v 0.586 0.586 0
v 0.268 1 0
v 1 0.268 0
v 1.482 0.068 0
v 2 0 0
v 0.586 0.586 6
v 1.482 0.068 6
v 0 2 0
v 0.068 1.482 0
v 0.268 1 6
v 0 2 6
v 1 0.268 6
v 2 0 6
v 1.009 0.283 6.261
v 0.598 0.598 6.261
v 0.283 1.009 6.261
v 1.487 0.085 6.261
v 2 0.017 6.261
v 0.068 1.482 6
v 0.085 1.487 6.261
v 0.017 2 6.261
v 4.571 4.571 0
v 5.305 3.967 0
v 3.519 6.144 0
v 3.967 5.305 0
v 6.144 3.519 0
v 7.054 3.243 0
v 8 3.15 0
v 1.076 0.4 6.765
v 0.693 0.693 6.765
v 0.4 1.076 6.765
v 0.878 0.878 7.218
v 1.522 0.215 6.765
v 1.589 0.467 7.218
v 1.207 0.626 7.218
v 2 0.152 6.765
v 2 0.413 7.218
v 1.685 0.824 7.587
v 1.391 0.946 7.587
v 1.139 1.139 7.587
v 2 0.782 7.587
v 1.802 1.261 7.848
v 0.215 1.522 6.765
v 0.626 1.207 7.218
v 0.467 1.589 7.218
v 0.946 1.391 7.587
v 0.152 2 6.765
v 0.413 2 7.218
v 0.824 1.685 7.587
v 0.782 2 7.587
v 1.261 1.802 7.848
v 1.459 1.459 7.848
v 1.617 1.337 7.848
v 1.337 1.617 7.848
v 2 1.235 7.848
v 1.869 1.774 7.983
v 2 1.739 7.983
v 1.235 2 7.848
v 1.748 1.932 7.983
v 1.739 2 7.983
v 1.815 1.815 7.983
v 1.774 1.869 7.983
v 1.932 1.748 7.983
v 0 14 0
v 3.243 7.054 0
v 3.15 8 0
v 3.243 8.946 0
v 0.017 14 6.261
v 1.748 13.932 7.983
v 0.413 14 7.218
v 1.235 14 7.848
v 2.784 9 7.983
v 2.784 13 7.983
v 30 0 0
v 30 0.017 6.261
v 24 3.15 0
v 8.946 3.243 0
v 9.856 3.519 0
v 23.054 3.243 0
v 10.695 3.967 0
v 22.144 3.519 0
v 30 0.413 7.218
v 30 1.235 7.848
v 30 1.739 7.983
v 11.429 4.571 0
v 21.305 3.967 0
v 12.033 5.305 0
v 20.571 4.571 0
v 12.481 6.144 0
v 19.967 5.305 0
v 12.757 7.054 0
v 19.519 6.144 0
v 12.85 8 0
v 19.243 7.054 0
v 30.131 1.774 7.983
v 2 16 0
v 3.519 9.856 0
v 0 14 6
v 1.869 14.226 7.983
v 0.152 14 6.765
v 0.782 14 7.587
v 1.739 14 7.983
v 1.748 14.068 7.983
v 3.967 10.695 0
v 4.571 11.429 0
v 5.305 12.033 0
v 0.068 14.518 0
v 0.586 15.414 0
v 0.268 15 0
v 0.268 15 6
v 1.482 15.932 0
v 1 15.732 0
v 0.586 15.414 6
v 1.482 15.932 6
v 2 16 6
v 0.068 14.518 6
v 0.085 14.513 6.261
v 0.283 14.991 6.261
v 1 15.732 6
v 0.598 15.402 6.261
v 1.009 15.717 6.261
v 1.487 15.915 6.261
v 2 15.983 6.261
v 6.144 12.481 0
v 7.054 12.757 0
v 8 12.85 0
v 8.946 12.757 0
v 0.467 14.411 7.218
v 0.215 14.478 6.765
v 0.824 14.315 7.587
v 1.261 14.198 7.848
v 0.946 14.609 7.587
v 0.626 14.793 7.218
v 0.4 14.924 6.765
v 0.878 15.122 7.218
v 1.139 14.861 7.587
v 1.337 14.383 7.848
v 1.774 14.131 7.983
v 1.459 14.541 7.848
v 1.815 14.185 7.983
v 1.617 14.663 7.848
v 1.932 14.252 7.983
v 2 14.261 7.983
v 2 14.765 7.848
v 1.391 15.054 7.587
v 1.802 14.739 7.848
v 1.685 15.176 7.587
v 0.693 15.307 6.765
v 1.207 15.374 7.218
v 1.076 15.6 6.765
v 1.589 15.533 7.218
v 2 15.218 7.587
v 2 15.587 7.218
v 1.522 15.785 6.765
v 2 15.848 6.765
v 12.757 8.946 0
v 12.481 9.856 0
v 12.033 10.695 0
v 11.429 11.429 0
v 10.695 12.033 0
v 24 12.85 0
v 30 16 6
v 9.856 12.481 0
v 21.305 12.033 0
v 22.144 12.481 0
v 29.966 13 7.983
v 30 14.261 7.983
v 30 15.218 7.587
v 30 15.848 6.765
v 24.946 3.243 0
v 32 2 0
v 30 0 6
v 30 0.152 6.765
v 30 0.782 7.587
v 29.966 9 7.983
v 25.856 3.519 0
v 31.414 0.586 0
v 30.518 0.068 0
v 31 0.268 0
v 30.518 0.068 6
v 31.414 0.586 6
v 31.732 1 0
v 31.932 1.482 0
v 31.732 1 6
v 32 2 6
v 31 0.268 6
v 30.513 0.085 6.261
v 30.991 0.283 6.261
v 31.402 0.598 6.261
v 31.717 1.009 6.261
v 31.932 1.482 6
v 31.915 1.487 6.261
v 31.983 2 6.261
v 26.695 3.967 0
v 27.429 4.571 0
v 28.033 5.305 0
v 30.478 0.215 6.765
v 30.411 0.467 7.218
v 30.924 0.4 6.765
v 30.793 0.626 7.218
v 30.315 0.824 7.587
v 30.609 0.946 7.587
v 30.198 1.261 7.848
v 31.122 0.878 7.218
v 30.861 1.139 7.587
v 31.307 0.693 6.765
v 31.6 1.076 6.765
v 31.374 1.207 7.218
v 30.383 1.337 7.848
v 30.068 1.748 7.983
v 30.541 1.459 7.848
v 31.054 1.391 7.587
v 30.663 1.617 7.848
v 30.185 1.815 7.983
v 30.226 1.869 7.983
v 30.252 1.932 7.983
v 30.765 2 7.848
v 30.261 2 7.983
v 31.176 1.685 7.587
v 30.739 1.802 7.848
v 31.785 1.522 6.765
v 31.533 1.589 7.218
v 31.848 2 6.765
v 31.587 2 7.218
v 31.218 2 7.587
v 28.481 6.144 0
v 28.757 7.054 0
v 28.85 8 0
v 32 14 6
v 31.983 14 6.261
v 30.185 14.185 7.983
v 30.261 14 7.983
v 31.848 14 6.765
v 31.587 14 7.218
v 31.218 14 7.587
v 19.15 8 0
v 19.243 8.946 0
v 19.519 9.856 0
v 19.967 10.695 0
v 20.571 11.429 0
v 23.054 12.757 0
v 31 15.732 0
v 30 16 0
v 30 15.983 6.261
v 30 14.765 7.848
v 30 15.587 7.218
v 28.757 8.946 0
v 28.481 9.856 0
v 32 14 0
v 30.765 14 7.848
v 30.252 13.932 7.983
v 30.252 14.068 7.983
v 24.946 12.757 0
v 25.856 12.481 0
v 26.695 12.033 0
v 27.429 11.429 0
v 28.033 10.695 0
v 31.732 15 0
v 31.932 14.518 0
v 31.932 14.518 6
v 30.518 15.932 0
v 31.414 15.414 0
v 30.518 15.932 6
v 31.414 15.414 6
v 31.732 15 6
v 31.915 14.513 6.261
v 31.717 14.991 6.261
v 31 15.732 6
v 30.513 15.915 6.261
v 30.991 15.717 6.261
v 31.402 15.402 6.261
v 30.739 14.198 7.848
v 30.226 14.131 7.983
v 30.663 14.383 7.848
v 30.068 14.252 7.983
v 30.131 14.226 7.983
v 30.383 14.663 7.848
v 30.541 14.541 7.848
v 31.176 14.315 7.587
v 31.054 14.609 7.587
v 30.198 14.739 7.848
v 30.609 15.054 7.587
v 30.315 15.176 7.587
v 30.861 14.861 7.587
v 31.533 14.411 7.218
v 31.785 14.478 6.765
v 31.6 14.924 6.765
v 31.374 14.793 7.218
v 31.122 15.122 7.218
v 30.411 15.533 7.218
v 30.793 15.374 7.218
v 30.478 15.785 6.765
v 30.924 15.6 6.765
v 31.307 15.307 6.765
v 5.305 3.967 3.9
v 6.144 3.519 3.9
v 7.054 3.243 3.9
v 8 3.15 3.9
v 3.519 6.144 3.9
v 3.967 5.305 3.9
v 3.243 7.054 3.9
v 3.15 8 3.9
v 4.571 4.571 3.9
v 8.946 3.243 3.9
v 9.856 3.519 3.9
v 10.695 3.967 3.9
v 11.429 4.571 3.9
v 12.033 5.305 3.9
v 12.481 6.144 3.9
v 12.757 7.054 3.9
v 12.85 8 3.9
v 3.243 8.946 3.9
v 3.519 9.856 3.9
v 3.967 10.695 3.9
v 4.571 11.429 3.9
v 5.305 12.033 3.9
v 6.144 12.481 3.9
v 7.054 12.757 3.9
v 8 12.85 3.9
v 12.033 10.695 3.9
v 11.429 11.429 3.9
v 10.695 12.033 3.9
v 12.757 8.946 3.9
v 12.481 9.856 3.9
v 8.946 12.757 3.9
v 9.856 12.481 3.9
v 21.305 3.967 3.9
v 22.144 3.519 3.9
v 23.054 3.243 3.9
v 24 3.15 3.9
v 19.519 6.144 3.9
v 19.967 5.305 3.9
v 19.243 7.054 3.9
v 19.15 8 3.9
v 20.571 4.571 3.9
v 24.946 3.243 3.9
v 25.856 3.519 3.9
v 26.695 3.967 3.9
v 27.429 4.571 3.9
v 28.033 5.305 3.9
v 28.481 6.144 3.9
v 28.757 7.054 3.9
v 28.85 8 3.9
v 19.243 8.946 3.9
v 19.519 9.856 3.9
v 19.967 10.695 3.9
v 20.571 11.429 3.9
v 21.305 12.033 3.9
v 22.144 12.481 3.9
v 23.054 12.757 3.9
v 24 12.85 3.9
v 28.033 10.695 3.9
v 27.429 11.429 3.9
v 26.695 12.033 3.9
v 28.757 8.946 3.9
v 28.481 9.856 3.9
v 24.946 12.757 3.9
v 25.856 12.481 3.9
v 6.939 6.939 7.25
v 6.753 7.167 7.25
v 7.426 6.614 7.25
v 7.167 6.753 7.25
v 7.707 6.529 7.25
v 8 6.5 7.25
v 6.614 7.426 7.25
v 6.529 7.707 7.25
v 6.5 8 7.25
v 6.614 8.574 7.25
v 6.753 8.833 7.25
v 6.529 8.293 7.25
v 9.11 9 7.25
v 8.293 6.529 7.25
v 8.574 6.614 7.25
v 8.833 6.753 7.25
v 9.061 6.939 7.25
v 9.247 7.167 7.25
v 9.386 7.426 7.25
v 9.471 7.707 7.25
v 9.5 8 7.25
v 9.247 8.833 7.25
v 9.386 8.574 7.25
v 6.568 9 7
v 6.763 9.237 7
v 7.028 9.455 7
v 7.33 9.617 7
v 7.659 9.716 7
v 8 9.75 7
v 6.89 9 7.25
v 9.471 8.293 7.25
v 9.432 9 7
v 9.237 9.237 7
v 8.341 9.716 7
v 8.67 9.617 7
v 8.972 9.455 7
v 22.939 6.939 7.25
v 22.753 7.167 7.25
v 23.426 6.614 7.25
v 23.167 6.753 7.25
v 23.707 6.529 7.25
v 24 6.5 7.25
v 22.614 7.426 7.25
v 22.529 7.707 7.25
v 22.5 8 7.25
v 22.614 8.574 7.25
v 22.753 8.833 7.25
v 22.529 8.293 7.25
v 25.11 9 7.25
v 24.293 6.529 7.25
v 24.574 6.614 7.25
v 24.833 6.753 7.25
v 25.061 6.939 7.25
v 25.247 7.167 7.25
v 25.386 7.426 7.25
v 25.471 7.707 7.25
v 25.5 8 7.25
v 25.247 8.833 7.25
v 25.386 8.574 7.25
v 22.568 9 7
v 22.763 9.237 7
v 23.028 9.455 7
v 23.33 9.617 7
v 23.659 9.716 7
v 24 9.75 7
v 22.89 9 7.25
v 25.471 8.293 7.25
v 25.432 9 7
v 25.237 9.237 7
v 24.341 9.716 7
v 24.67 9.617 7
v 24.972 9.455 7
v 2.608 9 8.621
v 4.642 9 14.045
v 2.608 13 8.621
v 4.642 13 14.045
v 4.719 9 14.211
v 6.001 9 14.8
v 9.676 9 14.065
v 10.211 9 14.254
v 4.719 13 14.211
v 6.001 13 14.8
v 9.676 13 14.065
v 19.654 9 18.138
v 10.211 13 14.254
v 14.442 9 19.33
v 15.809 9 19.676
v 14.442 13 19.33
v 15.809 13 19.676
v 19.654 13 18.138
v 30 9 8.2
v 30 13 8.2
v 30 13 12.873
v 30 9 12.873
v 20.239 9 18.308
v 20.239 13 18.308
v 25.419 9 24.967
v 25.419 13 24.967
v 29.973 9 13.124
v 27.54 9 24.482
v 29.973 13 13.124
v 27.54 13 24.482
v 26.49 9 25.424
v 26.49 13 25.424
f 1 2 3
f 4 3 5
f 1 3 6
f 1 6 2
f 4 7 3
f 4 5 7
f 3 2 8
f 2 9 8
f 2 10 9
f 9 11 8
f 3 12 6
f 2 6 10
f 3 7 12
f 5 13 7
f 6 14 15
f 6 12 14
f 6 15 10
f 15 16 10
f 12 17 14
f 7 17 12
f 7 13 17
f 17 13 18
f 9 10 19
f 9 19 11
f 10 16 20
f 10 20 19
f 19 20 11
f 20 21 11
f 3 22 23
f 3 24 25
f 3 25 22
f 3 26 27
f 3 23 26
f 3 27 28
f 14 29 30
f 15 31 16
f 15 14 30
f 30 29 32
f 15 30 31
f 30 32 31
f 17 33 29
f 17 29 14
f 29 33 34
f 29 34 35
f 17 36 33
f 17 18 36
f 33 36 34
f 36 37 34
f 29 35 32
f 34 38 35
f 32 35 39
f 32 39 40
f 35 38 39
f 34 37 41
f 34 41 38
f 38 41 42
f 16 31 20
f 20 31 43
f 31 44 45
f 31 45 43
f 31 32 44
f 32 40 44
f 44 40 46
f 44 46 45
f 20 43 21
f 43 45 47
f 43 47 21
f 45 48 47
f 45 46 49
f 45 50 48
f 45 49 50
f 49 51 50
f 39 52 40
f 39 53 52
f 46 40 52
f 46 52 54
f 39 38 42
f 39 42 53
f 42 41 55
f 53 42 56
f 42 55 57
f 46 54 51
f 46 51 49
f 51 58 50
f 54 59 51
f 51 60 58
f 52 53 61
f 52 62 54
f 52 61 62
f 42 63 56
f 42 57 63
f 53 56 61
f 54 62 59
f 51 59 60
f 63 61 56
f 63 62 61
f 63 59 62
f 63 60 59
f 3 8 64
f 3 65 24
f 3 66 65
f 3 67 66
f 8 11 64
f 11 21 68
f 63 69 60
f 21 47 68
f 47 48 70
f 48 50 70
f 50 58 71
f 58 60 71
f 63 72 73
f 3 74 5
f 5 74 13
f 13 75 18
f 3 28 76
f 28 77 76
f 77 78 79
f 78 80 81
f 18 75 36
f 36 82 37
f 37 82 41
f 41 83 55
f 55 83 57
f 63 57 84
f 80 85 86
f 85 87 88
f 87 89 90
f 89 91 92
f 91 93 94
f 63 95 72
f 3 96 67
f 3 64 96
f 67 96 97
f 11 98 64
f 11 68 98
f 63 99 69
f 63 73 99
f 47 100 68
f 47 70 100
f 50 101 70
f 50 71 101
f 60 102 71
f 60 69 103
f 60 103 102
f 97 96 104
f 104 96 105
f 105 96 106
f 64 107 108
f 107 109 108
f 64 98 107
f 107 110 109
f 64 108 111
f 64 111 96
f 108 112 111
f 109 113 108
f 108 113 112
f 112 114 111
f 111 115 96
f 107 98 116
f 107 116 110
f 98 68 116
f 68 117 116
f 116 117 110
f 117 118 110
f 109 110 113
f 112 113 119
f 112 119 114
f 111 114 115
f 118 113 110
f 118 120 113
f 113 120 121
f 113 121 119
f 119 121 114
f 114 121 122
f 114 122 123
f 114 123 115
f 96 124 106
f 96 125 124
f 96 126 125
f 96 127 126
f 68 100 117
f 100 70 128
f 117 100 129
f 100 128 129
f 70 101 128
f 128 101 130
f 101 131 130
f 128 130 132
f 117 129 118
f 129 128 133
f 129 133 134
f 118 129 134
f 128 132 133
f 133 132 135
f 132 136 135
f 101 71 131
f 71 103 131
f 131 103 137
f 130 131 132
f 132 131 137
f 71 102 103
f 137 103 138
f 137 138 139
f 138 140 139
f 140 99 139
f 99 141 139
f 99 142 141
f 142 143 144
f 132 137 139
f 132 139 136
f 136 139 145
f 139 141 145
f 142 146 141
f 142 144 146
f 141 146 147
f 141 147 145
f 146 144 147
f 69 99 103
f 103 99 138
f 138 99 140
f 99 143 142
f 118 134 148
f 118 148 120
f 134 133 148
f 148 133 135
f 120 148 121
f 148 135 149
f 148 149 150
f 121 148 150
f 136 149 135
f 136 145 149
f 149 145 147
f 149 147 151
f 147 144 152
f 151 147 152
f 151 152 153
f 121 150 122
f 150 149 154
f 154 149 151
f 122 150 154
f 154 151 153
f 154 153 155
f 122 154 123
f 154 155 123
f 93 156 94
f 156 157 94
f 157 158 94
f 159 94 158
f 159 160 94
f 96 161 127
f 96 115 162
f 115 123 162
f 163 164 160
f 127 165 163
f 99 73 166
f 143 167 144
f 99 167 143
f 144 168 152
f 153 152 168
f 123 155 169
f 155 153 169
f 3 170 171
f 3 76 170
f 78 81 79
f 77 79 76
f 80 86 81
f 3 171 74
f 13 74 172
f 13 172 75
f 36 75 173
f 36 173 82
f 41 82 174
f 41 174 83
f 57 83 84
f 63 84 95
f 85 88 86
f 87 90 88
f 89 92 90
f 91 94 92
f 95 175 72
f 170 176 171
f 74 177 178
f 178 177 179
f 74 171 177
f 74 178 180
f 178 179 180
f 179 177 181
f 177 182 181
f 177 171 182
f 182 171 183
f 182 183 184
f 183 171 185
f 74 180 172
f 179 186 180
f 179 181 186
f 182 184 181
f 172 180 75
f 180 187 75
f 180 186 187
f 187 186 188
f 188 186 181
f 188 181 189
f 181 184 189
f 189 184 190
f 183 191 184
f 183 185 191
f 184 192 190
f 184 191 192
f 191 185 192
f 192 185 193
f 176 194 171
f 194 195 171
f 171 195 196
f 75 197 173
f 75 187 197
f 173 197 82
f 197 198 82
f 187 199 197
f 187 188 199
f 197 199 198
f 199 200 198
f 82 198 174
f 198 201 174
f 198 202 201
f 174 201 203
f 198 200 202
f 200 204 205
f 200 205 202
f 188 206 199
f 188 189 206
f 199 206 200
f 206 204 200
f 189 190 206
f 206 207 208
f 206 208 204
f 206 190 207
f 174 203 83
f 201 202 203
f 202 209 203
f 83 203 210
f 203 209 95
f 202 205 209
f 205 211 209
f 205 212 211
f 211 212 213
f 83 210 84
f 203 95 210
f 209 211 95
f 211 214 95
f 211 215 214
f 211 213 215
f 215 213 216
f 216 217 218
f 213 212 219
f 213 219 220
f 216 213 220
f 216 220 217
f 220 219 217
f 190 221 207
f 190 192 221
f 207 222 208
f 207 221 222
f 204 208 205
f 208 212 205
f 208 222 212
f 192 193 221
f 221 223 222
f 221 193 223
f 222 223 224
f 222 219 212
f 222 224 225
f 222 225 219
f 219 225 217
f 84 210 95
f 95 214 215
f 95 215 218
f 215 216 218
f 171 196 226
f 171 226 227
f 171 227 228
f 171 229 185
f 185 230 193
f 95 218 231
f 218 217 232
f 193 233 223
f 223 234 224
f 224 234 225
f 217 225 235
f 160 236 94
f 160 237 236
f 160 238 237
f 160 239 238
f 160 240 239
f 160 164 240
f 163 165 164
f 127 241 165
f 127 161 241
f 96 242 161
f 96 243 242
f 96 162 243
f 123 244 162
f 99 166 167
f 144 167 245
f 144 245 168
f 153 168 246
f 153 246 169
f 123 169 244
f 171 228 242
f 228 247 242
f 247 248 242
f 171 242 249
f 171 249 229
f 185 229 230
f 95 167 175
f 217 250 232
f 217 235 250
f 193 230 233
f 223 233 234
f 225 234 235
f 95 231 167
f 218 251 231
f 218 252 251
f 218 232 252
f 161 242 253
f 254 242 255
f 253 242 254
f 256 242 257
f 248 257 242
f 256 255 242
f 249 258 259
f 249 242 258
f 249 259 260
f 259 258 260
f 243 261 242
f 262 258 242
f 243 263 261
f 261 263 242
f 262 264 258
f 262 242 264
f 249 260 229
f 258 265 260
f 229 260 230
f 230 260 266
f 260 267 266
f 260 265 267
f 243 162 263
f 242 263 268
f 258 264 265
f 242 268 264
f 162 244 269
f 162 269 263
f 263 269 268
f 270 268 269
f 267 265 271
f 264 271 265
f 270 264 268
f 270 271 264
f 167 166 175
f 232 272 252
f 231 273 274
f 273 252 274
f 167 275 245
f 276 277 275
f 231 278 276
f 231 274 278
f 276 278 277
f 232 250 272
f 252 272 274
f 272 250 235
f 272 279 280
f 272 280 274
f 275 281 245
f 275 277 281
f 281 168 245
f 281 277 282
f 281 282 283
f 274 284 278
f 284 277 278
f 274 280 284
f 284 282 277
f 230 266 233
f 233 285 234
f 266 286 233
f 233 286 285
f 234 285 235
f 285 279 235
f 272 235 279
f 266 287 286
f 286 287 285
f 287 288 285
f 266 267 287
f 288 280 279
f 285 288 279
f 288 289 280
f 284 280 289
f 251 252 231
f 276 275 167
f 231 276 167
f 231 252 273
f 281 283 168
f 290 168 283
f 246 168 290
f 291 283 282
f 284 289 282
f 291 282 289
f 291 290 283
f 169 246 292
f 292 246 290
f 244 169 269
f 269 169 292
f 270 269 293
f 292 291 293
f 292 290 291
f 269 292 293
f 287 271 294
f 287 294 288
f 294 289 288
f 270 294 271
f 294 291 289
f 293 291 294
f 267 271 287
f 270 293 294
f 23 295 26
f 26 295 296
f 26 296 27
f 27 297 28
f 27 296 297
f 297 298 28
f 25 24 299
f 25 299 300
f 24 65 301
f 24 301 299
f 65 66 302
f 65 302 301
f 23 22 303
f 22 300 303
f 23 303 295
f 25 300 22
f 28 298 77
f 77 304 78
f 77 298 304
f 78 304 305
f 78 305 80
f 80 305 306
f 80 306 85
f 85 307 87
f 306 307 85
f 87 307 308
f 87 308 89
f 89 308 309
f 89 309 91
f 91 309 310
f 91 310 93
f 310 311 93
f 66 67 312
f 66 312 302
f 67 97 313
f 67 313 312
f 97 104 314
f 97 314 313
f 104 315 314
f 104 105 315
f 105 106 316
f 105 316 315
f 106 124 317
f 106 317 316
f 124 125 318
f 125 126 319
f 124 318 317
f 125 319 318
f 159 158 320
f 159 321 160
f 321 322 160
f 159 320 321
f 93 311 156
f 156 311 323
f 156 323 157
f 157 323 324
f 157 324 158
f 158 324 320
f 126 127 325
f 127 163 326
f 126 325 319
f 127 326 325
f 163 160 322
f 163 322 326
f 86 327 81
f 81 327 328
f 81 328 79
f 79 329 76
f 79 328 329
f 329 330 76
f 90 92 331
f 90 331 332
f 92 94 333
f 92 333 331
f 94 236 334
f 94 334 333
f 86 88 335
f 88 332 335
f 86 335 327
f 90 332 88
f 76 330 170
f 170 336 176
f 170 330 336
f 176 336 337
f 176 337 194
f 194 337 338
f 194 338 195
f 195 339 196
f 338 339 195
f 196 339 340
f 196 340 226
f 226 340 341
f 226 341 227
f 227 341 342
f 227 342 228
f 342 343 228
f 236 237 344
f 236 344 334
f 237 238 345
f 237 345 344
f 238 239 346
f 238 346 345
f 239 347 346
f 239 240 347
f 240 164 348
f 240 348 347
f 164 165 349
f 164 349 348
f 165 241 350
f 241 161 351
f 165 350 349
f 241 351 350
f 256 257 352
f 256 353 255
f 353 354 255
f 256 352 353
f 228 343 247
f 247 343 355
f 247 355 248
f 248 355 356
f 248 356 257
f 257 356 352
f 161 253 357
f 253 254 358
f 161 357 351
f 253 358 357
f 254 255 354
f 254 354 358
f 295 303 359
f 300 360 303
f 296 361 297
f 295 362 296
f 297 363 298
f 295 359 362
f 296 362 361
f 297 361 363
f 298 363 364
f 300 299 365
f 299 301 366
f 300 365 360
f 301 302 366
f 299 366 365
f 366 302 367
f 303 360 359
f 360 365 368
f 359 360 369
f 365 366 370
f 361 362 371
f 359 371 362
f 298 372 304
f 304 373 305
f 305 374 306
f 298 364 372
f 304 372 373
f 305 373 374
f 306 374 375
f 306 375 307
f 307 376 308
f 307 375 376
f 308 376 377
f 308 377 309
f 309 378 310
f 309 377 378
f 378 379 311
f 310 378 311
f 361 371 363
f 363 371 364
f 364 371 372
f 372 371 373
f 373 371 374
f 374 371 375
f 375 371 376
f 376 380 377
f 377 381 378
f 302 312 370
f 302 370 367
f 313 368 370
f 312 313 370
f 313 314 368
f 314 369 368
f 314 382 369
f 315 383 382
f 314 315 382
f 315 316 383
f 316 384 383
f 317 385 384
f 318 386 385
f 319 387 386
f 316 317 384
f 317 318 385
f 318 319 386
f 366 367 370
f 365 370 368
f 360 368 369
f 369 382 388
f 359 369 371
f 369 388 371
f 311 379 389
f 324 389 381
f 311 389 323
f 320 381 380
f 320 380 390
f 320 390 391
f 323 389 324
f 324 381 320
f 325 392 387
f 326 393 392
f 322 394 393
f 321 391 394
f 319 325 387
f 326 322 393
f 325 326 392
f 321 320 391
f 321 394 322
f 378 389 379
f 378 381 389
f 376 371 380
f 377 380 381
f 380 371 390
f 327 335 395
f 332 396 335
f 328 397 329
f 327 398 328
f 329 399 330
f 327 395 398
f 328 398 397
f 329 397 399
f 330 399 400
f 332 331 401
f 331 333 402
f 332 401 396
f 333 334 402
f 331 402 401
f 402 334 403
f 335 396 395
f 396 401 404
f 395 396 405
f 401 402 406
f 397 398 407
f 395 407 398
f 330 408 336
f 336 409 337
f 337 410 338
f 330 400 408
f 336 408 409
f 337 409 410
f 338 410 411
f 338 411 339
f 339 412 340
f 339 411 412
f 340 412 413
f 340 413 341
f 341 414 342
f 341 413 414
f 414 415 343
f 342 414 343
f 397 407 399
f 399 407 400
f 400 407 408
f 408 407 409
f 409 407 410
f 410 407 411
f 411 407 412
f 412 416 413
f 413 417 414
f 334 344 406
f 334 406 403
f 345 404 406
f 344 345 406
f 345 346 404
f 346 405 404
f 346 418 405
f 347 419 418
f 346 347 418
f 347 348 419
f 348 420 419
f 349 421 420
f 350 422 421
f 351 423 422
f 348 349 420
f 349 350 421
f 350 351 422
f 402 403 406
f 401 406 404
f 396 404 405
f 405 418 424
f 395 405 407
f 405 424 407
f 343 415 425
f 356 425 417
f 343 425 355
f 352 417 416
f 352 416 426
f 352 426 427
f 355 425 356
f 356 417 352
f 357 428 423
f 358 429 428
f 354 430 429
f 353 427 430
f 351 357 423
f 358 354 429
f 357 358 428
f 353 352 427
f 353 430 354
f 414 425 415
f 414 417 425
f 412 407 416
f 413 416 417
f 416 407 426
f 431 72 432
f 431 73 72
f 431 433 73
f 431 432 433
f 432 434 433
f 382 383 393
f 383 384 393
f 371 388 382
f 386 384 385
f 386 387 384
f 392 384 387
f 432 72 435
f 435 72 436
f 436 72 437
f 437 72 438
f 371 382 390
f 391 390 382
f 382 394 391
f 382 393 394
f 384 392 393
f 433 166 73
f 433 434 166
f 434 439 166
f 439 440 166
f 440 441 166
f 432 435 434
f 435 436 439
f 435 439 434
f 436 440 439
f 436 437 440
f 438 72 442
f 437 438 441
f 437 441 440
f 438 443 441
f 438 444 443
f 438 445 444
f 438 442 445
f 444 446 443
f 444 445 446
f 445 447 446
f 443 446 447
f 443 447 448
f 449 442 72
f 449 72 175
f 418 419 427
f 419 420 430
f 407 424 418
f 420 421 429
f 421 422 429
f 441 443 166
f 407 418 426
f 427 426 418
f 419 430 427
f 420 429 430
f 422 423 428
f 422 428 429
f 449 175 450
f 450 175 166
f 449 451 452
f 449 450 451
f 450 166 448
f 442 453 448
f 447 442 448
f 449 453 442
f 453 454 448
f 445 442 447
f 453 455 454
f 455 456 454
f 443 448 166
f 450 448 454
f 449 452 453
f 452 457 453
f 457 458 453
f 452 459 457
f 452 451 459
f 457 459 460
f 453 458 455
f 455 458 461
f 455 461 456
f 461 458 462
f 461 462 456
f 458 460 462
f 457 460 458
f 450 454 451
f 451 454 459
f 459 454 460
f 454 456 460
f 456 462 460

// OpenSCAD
// file: ../profiles/stud_profile_small.scad
// stud_profile_small — TARGET values only. Nothing in Snap has been printed
// yet (Oct 27, 2026); clearance locks after the Day 4 calibration prints.
stud_pitch_mm = 16;
stud_diameter_mm = 9.5;
stud_height_mm = 5;
plate_height_mm = 4;

module stud() {
  cylinder(d = stud_diameter_mm, h = stud_height_mm, $fn = 32);
}

module stud_plate(units_x, units_y) {
  cube([units_x * stud_pitch_mm, units_y * stud_pitch_mm, plate_height_mm]);
  for (x = [0 : units_x - 1])
    for (y = [0 : units_y - 1])
      translate([(x + 0.5) * stud_pitch_mm, (y + 0.5) * stud_pitch_mm, plate_height_mm])
        stud();
}

// --- Snap-fit undersides (added for the first sample parts) ---
// TARGET clearance only, same status as the stud numbers above: the
// calibration piece sweeps -0.2..+0.2 mm, so parts start at the loose end
// (+0.2) and this one number moves once a printer says otherwise.
snap_clearance_mm = 0.2;
socket_depth_mm = 4; // engages 4 of the 5 mm stud; rest is finger room

// Recess that snaps over one stud. The 45-degree cone roof means the
// recess never needs a flat bridge, so undersides stay support-free
// printed studs-up on the bed.
module socket() {
  d = stud_diameter_mm + snap_clearance_mm;
  union() {
    cylinder(d = d, h = socket_depth_mm, $fn = 32);
    translate([0, 0, socket_depth_mm])
      cylinder(d1 = d, d2 = 3, h = (d - 3) / 2, $fn = 32);
  }
}

// Compliant socket: same cavity plus a lead-in taper and four relief
// slots, so the socket rim can flex over a small range of stud sizes
// instead of depending on one exact clearance. Used by the first-print
// fit selector; clearance is explicit per socket so one plate can carry
// snug / standard / easy variants side by side.
module compliant_socket(clearance_mm) {
  d = stud_diameter_mm + clearance_mm;
  union() {
    // Lead-in: wider mouth for the first millimetre, then the grip bore.
    // Total depth matches socket() so plates sized for it still work.
    cylinder(d1 = d + 0.8, d2 = d, h = 1, $fn = 32);
    translate([0, 0, 1]) cylinder(d = d, h = socket_depth_mm - 1, $fn = 32);
    translate([0, 0, socket_depth_mm])
      cylinder(d1 = d, d2 = 3, h = (d - 3) / 2, $fn = 32);
    // Relief slots through the grip depth: the remaining bridges flex.
    for (angle = [0, 90, 180, 270])
      rotate([0, 0, angle])
        translate([0, -0.6, -0.1])
          cube([d / 2 + 2.5, 1.2, socket_depth_mm + 0.1]);
  }
}

// Plate with rounded vertical edges and a rolled top edge, flat bottom
// for bed adhesion (docs/snap.md: rounded edges, no sharp corners).
module rounded_plate(units_x, units_y, h, r = 2) {
  w = units_x * stud_pitch_mm;
  d = units_y * stud_pitch_mm;
  hull() {
    for (x = [r, w - r])
      for (y = [r, d - r]) {
        translate([x, y, 0]) cylinder(r = r, h = h - r, $fn = 24);
        translate([x, y, h - r]) sphere(r = r, $fn = 24);
      }
  }
}

// Rounded plate with a snap socket under every grid cell. Needs
// h > socket_depth + cone roof (about 7.4 mm here); samples use 8+.
module socket_plate(units_x, units_y, h, r = 2) {
  difference() {
    rounded_plate(units_x, units_y, h, r);
    for (x = [0 : units_x - 1])
      for (y = [0 : units_y - 1])
        translate([(x + 0.5) * stud_pitch_mm, (y + 0.5) * stud_pitch_mm, -0.1])
          socket();
  }
}

// Studs standing on a plate top at height h, with a small cone fillet
// at each base so studs survive being pulled sideways by small hands.
// Sunk 0.5 mm into the plate: studs that merely touch the top face
// stay separate shells in the STL instead of one watertight solid.
module top_studs(units_x, units_y, h) {
  for (x = [0 : units_x - 1])
    for (y = [0 : units_y - 1])
      translate([(x + 0.5) * stud_pitch_mm, (y + 0.5) * stud_pitch_mm, h - 0.5]) {
        cylinder(d1 = stud_diameter_mm + 2, d2 = stud_diameter_mm, h = 1.5, $fn = 32);
        translate([0, 0, 1.5]) stud();
      }
}
// main file
// snap-wing-01 "Dragon Wing" — matches sets/base.json (32x16 mm
// footprint, flat). Character add-on, original design: one swept wing
// on a 2x1 socket base, for a figure's back or a car roof.
//
// Prints flat, no supports: the wing is a vertical plate, so every
// column of the scalloped silhouette is filled from the base up and
// nothing overhangs. The 2x1 footprint is symmetric, so it snaps on
// either way round — there is no wrong way for a kid to attach it.
include <../profiles/stud_profile_small.scad>;

base_h = 8;
wing_t = 4;

// Wing silhouette in plan: x along the toy (0 = front root, 32 = rear),
// y up. Scallops dip along the trailing edge from the tip.
module wing_2d() {
  // Erode-then-grow rounds the convex corners (tip, scallop peaks)
  // to about r=1.2 so no point is sharp.
  offset(r = 1.2) offset(r = -1.2)
    polygon(points = [
      [2, 0], [30, 0], [30, 6], [27, 20], [20, 11],
      [15, 13], [10, 7], [5, 8],
    ]);
}

socket_plate(2, 1, base_h);

// Stand the silhouette upright at the back of the base, sunk 1 mm so
// the root is one piece with the plate. After the rotation the
// extrusion runs toward -Y, so y=13 puts the wing at y 9..13 with a
// 3 mm rim behind it. Measured STL height is about 25.4 mm: the
// r=1.2 corner rounding trims the 20 mm sketch peak.
translate([0, 13, base_h - 1])
  rotate([90, 0, 0])
    linear_extrude(height = wing_t)
      wing_2d();
